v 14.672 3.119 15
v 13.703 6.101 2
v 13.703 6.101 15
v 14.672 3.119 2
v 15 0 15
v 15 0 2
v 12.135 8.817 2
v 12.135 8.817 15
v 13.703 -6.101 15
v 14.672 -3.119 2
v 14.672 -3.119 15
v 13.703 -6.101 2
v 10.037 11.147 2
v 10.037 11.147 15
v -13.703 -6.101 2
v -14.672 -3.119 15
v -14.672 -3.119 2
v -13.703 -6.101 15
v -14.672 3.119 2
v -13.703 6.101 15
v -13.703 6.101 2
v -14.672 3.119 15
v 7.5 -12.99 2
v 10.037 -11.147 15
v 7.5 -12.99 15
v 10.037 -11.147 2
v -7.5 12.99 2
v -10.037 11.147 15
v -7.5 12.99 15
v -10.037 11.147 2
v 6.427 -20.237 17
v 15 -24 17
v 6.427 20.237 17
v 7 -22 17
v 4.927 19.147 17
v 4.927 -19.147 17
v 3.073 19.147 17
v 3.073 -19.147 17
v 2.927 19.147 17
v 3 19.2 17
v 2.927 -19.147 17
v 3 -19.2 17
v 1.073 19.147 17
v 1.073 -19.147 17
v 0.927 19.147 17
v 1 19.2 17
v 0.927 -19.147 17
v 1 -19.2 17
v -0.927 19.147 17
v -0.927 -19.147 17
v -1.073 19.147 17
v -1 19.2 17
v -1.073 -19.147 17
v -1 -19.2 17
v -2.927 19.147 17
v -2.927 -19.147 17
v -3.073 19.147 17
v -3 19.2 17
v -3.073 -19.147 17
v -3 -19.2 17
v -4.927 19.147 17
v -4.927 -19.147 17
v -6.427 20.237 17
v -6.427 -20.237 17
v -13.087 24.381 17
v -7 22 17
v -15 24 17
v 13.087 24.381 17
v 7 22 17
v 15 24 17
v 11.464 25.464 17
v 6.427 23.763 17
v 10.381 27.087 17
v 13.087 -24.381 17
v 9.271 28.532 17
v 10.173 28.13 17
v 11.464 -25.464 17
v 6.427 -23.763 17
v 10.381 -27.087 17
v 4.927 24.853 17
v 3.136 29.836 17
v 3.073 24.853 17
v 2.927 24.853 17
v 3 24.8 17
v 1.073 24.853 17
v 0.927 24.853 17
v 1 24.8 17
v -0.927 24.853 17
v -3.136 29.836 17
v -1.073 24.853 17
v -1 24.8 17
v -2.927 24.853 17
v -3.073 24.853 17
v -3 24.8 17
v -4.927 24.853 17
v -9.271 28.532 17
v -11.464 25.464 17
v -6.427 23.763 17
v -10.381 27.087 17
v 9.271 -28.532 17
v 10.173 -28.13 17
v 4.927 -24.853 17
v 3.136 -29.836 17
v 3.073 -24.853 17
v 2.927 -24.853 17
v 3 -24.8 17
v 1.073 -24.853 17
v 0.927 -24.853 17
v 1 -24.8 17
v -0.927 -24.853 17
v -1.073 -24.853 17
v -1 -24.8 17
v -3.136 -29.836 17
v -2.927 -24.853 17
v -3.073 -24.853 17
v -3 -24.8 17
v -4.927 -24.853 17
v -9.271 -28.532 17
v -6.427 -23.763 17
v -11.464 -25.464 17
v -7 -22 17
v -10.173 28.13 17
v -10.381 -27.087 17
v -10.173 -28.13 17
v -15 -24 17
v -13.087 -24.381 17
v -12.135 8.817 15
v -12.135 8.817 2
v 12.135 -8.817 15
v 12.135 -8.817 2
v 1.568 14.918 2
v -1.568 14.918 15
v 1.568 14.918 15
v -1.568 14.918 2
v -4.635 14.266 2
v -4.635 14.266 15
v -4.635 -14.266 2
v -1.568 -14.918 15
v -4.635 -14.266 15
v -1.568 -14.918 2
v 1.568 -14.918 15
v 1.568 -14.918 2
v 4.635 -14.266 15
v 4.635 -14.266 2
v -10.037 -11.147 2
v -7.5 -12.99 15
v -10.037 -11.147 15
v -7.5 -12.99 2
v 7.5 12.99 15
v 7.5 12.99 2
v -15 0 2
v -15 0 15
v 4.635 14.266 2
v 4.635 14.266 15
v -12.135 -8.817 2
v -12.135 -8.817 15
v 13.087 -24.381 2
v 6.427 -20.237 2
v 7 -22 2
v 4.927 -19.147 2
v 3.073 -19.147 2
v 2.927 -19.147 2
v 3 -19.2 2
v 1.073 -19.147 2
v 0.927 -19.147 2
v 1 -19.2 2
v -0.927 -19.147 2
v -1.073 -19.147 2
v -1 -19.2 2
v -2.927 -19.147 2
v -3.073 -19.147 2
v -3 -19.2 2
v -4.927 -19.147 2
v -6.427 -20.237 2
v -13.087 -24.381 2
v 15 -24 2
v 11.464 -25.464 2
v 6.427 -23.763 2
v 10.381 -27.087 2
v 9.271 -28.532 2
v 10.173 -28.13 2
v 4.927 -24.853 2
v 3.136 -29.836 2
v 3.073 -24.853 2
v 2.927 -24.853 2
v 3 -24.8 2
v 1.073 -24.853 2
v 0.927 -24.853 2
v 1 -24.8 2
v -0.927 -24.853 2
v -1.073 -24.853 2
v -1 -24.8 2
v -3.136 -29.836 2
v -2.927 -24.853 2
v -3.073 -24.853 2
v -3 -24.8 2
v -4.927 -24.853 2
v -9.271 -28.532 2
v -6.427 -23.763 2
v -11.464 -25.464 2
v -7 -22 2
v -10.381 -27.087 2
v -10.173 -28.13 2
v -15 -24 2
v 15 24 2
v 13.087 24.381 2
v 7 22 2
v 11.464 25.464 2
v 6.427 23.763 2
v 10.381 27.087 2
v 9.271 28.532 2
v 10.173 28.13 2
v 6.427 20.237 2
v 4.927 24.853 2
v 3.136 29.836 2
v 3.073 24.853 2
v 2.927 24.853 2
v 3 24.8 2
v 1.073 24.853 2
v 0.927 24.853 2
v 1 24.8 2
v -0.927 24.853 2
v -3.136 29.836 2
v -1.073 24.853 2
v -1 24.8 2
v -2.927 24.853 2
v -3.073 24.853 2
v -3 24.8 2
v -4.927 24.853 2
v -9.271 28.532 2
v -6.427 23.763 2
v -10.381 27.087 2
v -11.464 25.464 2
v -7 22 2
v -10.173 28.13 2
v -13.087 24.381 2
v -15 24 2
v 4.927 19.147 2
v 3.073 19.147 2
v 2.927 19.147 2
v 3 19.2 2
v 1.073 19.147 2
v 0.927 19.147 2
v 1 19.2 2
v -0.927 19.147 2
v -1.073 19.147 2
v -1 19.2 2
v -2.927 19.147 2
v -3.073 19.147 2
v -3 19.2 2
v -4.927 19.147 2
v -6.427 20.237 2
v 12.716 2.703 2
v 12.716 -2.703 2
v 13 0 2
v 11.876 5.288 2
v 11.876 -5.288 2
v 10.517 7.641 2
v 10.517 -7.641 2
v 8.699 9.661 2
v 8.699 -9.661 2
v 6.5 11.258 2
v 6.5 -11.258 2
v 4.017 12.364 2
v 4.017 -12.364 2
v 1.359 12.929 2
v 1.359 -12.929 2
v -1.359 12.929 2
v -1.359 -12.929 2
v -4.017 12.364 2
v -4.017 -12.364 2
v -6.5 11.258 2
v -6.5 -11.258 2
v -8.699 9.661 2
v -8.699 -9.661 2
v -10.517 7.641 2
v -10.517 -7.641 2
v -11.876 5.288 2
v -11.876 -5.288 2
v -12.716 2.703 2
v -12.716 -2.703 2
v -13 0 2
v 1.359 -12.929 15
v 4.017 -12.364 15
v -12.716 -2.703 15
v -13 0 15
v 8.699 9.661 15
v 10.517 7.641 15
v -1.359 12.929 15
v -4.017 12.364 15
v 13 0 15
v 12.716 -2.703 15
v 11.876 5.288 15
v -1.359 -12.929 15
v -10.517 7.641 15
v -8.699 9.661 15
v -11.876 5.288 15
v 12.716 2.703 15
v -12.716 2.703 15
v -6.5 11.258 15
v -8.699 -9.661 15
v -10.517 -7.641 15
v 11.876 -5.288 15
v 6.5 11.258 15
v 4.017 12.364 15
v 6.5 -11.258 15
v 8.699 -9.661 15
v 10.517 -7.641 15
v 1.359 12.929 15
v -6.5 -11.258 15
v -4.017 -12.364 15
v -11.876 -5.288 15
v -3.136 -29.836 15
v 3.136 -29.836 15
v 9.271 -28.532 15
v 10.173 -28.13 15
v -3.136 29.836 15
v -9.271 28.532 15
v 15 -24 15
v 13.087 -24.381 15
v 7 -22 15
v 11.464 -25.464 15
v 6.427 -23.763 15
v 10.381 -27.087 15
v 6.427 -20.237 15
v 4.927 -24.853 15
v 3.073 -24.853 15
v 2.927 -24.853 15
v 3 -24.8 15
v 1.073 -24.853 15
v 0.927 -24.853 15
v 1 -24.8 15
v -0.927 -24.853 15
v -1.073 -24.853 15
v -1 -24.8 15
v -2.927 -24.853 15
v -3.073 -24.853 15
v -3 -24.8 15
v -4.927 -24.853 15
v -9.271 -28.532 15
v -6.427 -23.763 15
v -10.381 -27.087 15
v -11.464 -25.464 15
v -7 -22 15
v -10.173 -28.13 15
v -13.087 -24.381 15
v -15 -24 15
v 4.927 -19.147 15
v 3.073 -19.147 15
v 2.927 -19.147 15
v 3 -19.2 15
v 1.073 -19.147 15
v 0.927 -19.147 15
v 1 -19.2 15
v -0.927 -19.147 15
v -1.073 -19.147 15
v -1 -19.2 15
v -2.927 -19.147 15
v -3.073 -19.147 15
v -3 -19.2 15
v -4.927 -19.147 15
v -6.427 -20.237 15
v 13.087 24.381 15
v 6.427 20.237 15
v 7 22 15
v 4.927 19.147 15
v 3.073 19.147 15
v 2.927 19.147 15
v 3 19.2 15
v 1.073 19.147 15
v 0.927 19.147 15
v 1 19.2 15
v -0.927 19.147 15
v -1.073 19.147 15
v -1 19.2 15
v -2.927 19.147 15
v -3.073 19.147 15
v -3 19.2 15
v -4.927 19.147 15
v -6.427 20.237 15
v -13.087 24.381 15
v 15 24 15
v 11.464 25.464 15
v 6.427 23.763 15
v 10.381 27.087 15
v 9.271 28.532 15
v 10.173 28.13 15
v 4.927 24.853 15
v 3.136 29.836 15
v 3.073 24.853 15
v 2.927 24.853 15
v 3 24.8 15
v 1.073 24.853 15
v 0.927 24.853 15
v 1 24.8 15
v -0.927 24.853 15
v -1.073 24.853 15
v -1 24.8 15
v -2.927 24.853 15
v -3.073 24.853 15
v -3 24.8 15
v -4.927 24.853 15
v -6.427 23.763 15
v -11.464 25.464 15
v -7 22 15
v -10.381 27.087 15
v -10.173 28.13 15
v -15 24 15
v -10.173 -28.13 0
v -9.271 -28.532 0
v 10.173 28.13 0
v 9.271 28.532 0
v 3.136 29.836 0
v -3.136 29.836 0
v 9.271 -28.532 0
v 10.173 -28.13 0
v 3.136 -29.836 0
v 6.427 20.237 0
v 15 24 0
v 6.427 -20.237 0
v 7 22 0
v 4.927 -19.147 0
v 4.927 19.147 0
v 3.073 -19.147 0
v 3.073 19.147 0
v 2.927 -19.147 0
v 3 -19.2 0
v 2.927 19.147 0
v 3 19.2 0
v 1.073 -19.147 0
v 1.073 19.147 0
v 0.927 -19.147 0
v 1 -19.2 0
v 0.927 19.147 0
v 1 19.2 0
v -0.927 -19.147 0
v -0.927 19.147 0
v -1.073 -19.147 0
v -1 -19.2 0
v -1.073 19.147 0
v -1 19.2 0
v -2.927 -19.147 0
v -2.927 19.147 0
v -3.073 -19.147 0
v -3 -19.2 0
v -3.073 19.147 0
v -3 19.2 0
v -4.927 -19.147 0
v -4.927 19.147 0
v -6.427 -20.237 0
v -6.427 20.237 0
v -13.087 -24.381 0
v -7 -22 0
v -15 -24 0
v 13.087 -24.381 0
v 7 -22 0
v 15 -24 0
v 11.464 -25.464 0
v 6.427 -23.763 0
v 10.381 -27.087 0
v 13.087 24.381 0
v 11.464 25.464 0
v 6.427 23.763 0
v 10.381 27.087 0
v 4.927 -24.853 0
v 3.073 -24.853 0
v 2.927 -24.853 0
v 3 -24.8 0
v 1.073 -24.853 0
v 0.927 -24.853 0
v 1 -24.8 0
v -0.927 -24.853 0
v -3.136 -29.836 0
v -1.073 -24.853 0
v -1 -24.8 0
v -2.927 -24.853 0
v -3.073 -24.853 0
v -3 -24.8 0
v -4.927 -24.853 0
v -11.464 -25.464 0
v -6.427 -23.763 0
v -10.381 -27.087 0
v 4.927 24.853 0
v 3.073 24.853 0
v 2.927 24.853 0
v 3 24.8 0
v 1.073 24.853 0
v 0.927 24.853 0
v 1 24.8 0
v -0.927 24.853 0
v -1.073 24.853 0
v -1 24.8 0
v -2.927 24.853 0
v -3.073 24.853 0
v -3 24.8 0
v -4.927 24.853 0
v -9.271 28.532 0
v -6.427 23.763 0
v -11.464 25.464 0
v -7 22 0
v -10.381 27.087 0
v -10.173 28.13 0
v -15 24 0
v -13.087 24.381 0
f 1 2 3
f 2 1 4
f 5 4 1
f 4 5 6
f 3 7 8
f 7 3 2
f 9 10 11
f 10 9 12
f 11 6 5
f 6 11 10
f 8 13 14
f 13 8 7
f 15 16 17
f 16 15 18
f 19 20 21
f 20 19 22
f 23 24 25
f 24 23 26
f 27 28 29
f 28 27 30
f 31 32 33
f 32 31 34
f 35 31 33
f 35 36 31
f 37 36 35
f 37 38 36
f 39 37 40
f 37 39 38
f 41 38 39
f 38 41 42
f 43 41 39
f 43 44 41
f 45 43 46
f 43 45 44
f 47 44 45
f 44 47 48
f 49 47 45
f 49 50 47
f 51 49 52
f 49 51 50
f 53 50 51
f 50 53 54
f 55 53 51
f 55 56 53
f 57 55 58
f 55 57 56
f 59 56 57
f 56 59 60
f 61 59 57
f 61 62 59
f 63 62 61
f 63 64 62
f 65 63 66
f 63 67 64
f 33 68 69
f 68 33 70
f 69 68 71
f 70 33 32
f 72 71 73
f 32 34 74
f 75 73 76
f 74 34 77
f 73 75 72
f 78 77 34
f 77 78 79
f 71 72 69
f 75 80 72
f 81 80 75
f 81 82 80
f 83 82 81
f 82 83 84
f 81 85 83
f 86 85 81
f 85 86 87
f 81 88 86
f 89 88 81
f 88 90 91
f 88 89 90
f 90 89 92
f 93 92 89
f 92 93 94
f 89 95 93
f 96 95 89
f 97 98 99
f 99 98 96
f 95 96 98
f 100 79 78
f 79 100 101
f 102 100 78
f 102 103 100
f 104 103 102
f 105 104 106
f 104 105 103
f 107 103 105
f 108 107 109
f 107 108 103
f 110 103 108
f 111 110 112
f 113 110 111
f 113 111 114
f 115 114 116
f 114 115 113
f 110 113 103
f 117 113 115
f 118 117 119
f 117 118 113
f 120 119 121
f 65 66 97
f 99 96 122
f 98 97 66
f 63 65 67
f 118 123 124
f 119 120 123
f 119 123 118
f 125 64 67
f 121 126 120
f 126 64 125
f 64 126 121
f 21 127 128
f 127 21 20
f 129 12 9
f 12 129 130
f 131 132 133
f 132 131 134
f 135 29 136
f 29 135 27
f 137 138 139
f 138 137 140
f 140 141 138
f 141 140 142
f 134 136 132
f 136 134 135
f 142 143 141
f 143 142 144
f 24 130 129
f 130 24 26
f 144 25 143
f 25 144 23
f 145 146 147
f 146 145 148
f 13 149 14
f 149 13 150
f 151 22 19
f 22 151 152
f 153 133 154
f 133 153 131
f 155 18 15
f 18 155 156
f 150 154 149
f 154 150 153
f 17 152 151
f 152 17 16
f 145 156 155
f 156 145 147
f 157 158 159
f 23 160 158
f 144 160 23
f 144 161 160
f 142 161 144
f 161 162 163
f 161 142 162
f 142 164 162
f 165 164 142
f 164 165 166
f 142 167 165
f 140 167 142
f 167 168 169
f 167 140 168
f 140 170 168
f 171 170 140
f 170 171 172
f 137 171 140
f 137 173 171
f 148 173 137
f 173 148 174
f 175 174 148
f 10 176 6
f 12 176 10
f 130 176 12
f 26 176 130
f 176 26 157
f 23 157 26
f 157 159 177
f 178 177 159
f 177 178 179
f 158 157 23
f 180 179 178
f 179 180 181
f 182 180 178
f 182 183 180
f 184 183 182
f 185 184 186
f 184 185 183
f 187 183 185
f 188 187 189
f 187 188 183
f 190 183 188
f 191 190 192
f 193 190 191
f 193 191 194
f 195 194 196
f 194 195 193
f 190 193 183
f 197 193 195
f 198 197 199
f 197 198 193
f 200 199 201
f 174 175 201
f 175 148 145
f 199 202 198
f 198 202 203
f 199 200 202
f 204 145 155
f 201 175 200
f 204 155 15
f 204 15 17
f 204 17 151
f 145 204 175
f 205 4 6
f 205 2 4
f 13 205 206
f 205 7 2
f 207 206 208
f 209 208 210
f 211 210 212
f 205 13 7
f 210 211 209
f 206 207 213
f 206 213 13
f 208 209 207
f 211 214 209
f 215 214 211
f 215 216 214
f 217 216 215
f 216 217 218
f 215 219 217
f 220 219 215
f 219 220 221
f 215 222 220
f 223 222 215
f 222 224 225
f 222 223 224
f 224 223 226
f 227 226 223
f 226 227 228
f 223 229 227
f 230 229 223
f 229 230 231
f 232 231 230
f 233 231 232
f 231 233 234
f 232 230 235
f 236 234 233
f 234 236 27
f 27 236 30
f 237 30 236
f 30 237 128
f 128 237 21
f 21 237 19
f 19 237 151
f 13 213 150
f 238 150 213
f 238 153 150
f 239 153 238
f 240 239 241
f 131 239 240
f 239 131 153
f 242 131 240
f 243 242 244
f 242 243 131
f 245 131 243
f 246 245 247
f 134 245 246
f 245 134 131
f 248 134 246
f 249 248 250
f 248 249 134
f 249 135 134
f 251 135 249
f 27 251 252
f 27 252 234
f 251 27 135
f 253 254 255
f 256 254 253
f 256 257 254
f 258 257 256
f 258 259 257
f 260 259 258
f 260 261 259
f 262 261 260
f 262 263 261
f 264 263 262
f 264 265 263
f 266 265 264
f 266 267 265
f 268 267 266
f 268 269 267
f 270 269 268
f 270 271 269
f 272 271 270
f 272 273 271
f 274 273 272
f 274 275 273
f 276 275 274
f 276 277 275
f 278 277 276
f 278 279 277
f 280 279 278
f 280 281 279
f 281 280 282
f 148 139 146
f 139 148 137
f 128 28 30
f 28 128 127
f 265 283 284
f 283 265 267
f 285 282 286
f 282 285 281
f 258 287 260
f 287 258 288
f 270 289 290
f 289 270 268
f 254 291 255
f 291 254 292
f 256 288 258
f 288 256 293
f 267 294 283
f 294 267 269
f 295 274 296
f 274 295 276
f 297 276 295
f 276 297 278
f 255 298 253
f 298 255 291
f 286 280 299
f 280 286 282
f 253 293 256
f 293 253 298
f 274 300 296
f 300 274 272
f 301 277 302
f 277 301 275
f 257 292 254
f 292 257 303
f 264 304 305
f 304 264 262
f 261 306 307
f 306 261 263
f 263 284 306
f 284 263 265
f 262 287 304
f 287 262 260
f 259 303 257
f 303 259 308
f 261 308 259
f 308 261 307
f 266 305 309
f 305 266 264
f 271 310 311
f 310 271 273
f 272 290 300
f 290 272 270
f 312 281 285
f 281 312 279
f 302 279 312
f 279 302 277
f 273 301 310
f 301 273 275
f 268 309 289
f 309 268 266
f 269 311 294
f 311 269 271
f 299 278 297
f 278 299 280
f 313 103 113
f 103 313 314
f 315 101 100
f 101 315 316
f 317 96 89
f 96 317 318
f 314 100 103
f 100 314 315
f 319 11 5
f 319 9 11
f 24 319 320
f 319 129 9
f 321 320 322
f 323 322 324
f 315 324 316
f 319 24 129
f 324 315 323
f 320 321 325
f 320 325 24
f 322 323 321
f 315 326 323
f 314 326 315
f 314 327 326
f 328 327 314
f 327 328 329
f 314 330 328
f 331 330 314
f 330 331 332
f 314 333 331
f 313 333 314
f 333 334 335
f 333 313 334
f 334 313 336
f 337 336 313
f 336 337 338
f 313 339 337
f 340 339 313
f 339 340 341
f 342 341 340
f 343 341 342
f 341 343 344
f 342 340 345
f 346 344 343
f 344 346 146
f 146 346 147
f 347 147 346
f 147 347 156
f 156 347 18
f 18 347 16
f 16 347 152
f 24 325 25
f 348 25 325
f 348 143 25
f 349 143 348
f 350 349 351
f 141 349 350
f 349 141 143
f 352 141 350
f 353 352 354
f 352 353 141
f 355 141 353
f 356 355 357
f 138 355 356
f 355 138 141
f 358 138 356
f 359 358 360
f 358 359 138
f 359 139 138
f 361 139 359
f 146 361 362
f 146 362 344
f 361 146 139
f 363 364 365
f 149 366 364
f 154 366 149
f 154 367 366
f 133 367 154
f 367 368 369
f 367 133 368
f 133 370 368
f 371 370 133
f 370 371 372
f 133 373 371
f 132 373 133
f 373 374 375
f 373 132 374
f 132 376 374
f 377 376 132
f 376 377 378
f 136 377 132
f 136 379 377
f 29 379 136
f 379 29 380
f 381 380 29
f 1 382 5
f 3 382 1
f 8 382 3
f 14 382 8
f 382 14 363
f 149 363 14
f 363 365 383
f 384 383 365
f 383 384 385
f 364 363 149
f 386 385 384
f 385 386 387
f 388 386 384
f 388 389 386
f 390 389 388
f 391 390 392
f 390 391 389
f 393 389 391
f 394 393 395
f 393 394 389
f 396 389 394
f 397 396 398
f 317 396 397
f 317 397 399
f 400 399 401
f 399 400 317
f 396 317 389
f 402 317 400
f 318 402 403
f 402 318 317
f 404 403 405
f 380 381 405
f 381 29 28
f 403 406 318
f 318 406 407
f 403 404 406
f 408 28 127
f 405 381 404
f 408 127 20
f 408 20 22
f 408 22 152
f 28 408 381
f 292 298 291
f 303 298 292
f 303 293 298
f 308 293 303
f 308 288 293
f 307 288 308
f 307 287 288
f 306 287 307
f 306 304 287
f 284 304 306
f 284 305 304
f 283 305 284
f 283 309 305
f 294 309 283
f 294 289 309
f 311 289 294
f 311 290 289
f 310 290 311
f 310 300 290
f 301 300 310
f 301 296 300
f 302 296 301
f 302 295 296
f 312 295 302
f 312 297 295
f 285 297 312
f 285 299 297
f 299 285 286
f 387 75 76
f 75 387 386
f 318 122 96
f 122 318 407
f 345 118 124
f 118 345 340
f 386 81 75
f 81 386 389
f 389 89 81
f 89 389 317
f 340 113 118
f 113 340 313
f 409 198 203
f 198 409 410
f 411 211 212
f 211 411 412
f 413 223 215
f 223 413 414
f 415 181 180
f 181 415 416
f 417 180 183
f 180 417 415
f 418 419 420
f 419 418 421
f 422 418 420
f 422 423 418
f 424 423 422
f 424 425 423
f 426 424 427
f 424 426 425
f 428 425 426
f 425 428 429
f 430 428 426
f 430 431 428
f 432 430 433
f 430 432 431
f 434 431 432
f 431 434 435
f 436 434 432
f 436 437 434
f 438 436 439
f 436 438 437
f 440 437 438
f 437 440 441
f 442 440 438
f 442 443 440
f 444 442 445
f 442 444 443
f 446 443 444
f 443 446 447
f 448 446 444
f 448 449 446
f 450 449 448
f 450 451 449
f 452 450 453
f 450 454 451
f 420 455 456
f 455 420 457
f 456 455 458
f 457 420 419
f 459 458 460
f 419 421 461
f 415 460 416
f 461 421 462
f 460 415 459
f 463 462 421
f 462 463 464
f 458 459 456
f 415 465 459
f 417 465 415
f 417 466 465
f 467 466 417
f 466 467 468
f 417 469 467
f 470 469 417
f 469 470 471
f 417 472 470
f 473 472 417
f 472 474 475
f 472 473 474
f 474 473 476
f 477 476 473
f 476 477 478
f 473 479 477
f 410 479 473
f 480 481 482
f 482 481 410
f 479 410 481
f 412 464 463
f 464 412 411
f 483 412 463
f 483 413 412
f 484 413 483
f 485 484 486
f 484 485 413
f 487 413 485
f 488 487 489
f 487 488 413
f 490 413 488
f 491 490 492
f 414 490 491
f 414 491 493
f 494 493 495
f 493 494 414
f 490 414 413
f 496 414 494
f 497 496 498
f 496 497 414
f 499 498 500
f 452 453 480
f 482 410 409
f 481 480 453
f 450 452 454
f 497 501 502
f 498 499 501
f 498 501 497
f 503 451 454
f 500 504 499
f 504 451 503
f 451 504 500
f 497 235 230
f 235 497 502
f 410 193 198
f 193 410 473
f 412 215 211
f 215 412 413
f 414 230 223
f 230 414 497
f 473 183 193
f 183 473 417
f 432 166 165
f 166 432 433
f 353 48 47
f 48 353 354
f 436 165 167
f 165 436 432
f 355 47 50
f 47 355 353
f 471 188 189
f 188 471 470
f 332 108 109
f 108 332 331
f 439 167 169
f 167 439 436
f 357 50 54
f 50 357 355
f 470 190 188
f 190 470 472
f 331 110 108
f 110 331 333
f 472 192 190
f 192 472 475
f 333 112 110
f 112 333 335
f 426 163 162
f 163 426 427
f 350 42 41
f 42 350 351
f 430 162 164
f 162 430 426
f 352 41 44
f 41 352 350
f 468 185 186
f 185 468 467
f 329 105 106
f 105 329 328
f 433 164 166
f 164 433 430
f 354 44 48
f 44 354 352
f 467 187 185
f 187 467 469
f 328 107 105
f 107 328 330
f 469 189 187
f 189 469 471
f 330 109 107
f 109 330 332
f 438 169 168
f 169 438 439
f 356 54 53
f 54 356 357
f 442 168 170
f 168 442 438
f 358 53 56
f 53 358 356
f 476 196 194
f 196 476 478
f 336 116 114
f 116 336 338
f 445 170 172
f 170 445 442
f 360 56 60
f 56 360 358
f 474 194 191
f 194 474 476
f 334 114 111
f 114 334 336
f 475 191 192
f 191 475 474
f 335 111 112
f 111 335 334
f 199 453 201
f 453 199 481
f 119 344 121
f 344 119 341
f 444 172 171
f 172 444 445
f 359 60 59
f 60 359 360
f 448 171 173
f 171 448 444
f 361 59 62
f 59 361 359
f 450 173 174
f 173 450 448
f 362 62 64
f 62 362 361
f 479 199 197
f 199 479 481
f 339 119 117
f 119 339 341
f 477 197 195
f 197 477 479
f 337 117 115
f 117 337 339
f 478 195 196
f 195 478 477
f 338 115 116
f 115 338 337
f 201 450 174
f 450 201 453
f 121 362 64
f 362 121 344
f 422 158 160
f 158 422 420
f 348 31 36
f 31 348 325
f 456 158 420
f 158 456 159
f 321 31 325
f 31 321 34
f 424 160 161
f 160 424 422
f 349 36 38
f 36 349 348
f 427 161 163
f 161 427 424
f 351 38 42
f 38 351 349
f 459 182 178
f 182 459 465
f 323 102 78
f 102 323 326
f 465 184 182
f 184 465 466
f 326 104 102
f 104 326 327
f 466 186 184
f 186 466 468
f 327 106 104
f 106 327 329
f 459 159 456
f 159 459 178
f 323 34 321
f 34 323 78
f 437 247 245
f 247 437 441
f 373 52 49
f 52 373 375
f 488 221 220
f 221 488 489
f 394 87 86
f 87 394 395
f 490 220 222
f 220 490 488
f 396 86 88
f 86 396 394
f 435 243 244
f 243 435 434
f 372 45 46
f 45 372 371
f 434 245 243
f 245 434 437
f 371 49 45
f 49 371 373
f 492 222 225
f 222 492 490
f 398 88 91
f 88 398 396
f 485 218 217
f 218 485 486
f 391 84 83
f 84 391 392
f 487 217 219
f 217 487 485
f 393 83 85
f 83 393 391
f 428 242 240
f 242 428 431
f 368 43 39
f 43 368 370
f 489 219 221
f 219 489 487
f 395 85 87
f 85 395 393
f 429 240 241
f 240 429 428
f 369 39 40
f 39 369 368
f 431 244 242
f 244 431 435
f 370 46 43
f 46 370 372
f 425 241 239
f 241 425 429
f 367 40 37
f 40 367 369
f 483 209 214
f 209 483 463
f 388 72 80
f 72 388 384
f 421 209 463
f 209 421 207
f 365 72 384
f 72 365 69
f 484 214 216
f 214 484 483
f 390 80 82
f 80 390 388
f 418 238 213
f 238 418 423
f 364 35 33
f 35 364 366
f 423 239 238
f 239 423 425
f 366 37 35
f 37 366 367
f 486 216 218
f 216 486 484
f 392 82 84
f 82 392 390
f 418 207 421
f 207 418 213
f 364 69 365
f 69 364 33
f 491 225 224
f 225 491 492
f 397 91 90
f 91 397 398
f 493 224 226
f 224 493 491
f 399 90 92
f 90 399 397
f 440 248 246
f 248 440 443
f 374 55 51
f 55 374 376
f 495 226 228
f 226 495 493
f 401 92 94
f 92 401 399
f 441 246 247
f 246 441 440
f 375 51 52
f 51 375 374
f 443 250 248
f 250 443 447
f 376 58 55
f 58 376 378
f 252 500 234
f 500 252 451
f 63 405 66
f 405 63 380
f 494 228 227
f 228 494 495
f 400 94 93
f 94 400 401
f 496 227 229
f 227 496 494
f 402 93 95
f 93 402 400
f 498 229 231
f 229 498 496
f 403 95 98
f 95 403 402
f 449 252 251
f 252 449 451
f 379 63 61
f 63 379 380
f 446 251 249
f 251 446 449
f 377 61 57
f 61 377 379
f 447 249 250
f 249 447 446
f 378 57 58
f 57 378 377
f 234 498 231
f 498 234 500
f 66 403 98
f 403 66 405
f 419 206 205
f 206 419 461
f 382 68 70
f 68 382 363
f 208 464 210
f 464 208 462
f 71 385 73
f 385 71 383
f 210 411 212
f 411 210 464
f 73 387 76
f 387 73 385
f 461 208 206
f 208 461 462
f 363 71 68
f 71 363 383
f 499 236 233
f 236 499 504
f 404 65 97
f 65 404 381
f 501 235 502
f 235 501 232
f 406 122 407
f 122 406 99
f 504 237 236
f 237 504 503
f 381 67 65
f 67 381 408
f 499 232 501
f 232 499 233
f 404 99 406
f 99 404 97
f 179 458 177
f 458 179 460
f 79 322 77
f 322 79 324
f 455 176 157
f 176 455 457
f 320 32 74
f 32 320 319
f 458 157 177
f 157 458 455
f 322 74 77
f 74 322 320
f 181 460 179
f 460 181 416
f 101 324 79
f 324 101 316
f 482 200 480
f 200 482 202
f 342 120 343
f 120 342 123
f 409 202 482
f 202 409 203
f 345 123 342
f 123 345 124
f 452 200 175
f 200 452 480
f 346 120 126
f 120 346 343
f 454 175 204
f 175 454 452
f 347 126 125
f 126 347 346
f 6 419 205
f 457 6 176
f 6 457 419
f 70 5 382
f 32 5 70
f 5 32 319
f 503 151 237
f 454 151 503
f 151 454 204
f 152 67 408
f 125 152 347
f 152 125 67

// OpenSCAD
difference() {

  union() {
    center();
    top();
    top_bottom();
    }

    choppers();
  }

module top_bottom() {
    cylinder(h=2, r=30);
    }

module top() {
  translate([0,0,15])
    top_bottom();
    }

module center() {
  translate([0,0,2])
    difference() {
      cylinder(h=15, r=15);
      cylinder(h=15, r=13);
    }
  }

module chopper() {
  cube([15,60,21],false);
  }

module choppers() {
  translate([15,-30,-1])
    chopper();
  translate([-30,-30,-1])
    chopper();
  south_hole();
  north_hole();
  corner_holes();
  }

module corner_holes() {
  translate([15,29,-1])
    cylinder(h=21, r=5);
  translate([-15,29,-1])
    cylinder(h=21, r=5);
  translate([15,-29,-1])
    cylinder(h=21, r=5);
  translate([-15,-29,-1])
    cylinder(h=21, r=5);
}

module south_hole() {
    translate([0,-22,-1])
      hole_bit();
    translate([2,-22,-1])
      hole_bit();
    translate([-2,-22,-1])
      hole_bit();
    translate([-4,-22,-1])
      hole_bit();
    translate([4,-22,-1])
      hole_bit();
}

module north_hole() {
  translate([0,22,-1])
    hole_bit();
  translate([2,22,-1])
    hole_bit();
  translate([4,22,-1])
    hole_bit();
  translate([-2,22,-1])
    hole_bit();
  translate([-4,22,-1])
    hole_bit();
}

module hole_bit() {
  cylinder(h=21,r=3);
  }
